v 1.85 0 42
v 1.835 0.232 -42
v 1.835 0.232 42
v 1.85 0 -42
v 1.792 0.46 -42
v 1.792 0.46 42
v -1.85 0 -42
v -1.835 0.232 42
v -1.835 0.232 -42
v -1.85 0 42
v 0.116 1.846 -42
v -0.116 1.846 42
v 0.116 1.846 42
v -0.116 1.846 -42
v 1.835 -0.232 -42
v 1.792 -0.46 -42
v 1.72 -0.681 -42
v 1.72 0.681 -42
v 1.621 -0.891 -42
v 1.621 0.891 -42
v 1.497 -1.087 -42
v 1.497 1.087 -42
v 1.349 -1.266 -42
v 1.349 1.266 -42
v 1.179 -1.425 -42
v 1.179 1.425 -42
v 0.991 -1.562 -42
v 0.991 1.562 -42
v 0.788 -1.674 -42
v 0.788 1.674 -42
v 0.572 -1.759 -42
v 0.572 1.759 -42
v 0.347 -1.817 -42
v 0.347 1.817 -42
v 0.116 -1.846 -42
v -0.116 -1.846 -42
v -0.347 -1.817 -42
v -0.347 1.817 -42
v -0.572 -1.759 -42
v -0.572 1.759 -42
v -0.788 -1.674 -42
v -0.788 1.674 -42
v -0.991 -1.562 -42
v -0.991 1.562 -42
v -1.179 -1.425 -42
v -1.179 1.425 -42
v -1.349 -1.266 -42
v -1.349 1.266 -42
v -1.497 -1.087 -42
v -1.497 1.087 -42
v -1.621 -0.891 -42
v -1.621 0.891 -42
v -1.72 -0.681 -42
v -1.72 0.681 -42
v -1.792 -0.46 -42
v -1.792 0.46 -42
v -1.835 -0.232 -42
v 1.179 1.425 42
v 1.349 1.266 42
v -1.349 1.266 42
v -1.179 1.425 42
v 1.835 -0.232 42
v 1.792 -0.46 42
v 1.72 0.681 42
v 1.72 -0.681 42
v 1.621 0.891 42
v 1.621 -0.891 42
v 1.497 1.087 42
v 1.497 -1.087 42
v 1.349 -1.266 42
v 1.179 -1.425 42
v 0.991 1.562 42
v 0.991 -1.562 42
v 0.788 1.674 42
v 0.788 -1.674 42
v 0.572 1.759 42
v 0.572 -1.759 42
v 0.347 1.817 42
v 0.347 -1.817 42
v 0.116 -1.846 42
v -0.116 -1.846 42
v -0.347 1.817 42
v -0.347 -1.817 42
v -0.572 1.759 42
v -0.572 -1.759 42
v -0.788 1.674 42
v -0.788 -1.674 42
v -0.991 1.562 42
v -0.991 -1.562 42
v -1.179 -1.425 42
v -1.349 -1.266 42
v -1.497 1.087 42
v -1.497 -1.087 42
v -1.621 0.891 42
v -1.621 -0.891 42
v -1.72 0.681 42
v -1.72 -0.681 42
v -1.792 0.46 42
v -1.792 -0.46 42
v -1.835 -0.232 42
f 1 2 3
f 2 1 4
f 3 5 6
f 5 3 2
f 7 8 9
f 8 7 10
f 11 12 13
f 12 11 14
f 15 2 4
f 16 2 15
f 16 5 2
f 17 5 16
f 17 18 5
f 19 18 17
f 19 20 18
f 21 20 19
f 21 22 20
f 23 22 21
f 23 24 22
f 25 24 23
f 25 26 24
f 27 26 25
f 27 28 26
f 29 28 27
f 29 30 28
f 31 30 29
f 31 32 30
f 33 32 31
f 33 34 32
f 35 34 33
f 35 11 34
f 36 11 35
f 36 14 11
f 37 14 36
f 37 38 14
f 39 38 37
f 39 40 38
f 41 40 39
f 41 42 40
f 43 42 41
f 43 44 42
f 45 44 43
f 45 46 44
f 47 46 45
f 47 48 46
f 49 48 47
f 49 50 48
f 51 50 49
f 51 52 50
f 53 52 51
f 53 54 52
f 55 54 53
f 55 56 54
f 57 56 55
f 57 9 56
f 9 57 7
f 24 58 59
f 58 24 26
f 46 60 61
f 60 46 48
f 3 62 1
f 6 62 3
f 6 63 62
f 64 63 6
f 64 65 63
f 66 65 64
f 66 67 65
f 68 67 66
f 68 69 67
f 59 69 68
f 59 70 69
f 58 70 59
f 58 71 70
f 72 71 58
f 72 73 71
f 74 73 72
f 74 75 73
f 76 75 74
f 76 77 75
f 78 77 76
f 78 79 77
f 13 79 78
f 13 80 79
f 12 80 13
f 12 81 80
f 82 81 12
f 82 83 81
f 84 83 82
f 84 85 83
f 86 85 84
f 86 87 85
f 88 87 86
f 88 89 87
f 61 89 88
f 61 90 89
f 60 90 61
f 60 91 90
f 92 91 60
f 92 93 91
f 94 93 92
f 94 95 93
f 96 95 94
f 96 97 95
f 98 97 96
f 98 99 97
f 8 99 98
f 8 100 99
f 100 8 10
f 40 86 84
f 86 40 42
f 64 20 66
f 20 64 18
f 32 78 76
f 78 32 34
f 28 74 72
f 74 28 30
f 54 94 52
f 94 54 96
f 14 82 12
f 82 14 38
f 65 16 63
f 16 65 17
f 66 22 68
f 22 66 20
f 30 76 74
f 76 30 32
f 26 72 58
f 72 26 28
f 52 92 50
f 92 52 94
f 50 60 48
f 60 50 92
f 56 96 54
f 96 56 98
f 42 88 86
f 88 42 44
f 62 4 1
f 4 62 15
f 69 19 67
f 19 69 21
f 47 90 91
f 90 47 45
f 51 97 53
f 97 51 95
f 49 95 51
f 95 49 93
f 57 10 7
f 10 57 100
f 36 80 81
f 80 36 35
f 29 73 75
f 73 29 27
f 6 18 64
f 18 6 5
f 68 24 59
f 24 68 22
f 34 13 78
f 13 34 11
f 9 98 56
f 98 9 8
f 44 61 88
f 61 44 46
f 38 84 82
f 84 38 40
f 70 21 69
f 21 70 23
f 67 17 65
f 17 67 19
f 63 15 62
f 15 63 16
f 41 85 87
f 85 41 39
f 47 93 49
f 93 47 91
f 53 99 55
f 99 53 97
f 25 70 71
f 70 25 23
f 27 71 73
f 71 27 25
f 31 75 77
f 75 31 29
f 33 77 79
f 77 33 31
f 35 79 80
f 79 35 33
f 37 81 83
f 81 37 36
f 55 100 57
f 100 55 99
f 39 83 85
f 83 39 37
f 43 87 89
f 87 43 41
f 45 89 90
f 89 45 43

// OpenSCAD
$fn = 50;


difference() {
	union() {
		translate(v = [0, 0, -42.0000000000]) {
			cylinder(h = 84, r = 1.8500000000);
		}
	}
	union() {
		translate(v = [0, 0, -100.0000000000]) {
			cylinder(h = 200, r = 0);
		}
	}
}
